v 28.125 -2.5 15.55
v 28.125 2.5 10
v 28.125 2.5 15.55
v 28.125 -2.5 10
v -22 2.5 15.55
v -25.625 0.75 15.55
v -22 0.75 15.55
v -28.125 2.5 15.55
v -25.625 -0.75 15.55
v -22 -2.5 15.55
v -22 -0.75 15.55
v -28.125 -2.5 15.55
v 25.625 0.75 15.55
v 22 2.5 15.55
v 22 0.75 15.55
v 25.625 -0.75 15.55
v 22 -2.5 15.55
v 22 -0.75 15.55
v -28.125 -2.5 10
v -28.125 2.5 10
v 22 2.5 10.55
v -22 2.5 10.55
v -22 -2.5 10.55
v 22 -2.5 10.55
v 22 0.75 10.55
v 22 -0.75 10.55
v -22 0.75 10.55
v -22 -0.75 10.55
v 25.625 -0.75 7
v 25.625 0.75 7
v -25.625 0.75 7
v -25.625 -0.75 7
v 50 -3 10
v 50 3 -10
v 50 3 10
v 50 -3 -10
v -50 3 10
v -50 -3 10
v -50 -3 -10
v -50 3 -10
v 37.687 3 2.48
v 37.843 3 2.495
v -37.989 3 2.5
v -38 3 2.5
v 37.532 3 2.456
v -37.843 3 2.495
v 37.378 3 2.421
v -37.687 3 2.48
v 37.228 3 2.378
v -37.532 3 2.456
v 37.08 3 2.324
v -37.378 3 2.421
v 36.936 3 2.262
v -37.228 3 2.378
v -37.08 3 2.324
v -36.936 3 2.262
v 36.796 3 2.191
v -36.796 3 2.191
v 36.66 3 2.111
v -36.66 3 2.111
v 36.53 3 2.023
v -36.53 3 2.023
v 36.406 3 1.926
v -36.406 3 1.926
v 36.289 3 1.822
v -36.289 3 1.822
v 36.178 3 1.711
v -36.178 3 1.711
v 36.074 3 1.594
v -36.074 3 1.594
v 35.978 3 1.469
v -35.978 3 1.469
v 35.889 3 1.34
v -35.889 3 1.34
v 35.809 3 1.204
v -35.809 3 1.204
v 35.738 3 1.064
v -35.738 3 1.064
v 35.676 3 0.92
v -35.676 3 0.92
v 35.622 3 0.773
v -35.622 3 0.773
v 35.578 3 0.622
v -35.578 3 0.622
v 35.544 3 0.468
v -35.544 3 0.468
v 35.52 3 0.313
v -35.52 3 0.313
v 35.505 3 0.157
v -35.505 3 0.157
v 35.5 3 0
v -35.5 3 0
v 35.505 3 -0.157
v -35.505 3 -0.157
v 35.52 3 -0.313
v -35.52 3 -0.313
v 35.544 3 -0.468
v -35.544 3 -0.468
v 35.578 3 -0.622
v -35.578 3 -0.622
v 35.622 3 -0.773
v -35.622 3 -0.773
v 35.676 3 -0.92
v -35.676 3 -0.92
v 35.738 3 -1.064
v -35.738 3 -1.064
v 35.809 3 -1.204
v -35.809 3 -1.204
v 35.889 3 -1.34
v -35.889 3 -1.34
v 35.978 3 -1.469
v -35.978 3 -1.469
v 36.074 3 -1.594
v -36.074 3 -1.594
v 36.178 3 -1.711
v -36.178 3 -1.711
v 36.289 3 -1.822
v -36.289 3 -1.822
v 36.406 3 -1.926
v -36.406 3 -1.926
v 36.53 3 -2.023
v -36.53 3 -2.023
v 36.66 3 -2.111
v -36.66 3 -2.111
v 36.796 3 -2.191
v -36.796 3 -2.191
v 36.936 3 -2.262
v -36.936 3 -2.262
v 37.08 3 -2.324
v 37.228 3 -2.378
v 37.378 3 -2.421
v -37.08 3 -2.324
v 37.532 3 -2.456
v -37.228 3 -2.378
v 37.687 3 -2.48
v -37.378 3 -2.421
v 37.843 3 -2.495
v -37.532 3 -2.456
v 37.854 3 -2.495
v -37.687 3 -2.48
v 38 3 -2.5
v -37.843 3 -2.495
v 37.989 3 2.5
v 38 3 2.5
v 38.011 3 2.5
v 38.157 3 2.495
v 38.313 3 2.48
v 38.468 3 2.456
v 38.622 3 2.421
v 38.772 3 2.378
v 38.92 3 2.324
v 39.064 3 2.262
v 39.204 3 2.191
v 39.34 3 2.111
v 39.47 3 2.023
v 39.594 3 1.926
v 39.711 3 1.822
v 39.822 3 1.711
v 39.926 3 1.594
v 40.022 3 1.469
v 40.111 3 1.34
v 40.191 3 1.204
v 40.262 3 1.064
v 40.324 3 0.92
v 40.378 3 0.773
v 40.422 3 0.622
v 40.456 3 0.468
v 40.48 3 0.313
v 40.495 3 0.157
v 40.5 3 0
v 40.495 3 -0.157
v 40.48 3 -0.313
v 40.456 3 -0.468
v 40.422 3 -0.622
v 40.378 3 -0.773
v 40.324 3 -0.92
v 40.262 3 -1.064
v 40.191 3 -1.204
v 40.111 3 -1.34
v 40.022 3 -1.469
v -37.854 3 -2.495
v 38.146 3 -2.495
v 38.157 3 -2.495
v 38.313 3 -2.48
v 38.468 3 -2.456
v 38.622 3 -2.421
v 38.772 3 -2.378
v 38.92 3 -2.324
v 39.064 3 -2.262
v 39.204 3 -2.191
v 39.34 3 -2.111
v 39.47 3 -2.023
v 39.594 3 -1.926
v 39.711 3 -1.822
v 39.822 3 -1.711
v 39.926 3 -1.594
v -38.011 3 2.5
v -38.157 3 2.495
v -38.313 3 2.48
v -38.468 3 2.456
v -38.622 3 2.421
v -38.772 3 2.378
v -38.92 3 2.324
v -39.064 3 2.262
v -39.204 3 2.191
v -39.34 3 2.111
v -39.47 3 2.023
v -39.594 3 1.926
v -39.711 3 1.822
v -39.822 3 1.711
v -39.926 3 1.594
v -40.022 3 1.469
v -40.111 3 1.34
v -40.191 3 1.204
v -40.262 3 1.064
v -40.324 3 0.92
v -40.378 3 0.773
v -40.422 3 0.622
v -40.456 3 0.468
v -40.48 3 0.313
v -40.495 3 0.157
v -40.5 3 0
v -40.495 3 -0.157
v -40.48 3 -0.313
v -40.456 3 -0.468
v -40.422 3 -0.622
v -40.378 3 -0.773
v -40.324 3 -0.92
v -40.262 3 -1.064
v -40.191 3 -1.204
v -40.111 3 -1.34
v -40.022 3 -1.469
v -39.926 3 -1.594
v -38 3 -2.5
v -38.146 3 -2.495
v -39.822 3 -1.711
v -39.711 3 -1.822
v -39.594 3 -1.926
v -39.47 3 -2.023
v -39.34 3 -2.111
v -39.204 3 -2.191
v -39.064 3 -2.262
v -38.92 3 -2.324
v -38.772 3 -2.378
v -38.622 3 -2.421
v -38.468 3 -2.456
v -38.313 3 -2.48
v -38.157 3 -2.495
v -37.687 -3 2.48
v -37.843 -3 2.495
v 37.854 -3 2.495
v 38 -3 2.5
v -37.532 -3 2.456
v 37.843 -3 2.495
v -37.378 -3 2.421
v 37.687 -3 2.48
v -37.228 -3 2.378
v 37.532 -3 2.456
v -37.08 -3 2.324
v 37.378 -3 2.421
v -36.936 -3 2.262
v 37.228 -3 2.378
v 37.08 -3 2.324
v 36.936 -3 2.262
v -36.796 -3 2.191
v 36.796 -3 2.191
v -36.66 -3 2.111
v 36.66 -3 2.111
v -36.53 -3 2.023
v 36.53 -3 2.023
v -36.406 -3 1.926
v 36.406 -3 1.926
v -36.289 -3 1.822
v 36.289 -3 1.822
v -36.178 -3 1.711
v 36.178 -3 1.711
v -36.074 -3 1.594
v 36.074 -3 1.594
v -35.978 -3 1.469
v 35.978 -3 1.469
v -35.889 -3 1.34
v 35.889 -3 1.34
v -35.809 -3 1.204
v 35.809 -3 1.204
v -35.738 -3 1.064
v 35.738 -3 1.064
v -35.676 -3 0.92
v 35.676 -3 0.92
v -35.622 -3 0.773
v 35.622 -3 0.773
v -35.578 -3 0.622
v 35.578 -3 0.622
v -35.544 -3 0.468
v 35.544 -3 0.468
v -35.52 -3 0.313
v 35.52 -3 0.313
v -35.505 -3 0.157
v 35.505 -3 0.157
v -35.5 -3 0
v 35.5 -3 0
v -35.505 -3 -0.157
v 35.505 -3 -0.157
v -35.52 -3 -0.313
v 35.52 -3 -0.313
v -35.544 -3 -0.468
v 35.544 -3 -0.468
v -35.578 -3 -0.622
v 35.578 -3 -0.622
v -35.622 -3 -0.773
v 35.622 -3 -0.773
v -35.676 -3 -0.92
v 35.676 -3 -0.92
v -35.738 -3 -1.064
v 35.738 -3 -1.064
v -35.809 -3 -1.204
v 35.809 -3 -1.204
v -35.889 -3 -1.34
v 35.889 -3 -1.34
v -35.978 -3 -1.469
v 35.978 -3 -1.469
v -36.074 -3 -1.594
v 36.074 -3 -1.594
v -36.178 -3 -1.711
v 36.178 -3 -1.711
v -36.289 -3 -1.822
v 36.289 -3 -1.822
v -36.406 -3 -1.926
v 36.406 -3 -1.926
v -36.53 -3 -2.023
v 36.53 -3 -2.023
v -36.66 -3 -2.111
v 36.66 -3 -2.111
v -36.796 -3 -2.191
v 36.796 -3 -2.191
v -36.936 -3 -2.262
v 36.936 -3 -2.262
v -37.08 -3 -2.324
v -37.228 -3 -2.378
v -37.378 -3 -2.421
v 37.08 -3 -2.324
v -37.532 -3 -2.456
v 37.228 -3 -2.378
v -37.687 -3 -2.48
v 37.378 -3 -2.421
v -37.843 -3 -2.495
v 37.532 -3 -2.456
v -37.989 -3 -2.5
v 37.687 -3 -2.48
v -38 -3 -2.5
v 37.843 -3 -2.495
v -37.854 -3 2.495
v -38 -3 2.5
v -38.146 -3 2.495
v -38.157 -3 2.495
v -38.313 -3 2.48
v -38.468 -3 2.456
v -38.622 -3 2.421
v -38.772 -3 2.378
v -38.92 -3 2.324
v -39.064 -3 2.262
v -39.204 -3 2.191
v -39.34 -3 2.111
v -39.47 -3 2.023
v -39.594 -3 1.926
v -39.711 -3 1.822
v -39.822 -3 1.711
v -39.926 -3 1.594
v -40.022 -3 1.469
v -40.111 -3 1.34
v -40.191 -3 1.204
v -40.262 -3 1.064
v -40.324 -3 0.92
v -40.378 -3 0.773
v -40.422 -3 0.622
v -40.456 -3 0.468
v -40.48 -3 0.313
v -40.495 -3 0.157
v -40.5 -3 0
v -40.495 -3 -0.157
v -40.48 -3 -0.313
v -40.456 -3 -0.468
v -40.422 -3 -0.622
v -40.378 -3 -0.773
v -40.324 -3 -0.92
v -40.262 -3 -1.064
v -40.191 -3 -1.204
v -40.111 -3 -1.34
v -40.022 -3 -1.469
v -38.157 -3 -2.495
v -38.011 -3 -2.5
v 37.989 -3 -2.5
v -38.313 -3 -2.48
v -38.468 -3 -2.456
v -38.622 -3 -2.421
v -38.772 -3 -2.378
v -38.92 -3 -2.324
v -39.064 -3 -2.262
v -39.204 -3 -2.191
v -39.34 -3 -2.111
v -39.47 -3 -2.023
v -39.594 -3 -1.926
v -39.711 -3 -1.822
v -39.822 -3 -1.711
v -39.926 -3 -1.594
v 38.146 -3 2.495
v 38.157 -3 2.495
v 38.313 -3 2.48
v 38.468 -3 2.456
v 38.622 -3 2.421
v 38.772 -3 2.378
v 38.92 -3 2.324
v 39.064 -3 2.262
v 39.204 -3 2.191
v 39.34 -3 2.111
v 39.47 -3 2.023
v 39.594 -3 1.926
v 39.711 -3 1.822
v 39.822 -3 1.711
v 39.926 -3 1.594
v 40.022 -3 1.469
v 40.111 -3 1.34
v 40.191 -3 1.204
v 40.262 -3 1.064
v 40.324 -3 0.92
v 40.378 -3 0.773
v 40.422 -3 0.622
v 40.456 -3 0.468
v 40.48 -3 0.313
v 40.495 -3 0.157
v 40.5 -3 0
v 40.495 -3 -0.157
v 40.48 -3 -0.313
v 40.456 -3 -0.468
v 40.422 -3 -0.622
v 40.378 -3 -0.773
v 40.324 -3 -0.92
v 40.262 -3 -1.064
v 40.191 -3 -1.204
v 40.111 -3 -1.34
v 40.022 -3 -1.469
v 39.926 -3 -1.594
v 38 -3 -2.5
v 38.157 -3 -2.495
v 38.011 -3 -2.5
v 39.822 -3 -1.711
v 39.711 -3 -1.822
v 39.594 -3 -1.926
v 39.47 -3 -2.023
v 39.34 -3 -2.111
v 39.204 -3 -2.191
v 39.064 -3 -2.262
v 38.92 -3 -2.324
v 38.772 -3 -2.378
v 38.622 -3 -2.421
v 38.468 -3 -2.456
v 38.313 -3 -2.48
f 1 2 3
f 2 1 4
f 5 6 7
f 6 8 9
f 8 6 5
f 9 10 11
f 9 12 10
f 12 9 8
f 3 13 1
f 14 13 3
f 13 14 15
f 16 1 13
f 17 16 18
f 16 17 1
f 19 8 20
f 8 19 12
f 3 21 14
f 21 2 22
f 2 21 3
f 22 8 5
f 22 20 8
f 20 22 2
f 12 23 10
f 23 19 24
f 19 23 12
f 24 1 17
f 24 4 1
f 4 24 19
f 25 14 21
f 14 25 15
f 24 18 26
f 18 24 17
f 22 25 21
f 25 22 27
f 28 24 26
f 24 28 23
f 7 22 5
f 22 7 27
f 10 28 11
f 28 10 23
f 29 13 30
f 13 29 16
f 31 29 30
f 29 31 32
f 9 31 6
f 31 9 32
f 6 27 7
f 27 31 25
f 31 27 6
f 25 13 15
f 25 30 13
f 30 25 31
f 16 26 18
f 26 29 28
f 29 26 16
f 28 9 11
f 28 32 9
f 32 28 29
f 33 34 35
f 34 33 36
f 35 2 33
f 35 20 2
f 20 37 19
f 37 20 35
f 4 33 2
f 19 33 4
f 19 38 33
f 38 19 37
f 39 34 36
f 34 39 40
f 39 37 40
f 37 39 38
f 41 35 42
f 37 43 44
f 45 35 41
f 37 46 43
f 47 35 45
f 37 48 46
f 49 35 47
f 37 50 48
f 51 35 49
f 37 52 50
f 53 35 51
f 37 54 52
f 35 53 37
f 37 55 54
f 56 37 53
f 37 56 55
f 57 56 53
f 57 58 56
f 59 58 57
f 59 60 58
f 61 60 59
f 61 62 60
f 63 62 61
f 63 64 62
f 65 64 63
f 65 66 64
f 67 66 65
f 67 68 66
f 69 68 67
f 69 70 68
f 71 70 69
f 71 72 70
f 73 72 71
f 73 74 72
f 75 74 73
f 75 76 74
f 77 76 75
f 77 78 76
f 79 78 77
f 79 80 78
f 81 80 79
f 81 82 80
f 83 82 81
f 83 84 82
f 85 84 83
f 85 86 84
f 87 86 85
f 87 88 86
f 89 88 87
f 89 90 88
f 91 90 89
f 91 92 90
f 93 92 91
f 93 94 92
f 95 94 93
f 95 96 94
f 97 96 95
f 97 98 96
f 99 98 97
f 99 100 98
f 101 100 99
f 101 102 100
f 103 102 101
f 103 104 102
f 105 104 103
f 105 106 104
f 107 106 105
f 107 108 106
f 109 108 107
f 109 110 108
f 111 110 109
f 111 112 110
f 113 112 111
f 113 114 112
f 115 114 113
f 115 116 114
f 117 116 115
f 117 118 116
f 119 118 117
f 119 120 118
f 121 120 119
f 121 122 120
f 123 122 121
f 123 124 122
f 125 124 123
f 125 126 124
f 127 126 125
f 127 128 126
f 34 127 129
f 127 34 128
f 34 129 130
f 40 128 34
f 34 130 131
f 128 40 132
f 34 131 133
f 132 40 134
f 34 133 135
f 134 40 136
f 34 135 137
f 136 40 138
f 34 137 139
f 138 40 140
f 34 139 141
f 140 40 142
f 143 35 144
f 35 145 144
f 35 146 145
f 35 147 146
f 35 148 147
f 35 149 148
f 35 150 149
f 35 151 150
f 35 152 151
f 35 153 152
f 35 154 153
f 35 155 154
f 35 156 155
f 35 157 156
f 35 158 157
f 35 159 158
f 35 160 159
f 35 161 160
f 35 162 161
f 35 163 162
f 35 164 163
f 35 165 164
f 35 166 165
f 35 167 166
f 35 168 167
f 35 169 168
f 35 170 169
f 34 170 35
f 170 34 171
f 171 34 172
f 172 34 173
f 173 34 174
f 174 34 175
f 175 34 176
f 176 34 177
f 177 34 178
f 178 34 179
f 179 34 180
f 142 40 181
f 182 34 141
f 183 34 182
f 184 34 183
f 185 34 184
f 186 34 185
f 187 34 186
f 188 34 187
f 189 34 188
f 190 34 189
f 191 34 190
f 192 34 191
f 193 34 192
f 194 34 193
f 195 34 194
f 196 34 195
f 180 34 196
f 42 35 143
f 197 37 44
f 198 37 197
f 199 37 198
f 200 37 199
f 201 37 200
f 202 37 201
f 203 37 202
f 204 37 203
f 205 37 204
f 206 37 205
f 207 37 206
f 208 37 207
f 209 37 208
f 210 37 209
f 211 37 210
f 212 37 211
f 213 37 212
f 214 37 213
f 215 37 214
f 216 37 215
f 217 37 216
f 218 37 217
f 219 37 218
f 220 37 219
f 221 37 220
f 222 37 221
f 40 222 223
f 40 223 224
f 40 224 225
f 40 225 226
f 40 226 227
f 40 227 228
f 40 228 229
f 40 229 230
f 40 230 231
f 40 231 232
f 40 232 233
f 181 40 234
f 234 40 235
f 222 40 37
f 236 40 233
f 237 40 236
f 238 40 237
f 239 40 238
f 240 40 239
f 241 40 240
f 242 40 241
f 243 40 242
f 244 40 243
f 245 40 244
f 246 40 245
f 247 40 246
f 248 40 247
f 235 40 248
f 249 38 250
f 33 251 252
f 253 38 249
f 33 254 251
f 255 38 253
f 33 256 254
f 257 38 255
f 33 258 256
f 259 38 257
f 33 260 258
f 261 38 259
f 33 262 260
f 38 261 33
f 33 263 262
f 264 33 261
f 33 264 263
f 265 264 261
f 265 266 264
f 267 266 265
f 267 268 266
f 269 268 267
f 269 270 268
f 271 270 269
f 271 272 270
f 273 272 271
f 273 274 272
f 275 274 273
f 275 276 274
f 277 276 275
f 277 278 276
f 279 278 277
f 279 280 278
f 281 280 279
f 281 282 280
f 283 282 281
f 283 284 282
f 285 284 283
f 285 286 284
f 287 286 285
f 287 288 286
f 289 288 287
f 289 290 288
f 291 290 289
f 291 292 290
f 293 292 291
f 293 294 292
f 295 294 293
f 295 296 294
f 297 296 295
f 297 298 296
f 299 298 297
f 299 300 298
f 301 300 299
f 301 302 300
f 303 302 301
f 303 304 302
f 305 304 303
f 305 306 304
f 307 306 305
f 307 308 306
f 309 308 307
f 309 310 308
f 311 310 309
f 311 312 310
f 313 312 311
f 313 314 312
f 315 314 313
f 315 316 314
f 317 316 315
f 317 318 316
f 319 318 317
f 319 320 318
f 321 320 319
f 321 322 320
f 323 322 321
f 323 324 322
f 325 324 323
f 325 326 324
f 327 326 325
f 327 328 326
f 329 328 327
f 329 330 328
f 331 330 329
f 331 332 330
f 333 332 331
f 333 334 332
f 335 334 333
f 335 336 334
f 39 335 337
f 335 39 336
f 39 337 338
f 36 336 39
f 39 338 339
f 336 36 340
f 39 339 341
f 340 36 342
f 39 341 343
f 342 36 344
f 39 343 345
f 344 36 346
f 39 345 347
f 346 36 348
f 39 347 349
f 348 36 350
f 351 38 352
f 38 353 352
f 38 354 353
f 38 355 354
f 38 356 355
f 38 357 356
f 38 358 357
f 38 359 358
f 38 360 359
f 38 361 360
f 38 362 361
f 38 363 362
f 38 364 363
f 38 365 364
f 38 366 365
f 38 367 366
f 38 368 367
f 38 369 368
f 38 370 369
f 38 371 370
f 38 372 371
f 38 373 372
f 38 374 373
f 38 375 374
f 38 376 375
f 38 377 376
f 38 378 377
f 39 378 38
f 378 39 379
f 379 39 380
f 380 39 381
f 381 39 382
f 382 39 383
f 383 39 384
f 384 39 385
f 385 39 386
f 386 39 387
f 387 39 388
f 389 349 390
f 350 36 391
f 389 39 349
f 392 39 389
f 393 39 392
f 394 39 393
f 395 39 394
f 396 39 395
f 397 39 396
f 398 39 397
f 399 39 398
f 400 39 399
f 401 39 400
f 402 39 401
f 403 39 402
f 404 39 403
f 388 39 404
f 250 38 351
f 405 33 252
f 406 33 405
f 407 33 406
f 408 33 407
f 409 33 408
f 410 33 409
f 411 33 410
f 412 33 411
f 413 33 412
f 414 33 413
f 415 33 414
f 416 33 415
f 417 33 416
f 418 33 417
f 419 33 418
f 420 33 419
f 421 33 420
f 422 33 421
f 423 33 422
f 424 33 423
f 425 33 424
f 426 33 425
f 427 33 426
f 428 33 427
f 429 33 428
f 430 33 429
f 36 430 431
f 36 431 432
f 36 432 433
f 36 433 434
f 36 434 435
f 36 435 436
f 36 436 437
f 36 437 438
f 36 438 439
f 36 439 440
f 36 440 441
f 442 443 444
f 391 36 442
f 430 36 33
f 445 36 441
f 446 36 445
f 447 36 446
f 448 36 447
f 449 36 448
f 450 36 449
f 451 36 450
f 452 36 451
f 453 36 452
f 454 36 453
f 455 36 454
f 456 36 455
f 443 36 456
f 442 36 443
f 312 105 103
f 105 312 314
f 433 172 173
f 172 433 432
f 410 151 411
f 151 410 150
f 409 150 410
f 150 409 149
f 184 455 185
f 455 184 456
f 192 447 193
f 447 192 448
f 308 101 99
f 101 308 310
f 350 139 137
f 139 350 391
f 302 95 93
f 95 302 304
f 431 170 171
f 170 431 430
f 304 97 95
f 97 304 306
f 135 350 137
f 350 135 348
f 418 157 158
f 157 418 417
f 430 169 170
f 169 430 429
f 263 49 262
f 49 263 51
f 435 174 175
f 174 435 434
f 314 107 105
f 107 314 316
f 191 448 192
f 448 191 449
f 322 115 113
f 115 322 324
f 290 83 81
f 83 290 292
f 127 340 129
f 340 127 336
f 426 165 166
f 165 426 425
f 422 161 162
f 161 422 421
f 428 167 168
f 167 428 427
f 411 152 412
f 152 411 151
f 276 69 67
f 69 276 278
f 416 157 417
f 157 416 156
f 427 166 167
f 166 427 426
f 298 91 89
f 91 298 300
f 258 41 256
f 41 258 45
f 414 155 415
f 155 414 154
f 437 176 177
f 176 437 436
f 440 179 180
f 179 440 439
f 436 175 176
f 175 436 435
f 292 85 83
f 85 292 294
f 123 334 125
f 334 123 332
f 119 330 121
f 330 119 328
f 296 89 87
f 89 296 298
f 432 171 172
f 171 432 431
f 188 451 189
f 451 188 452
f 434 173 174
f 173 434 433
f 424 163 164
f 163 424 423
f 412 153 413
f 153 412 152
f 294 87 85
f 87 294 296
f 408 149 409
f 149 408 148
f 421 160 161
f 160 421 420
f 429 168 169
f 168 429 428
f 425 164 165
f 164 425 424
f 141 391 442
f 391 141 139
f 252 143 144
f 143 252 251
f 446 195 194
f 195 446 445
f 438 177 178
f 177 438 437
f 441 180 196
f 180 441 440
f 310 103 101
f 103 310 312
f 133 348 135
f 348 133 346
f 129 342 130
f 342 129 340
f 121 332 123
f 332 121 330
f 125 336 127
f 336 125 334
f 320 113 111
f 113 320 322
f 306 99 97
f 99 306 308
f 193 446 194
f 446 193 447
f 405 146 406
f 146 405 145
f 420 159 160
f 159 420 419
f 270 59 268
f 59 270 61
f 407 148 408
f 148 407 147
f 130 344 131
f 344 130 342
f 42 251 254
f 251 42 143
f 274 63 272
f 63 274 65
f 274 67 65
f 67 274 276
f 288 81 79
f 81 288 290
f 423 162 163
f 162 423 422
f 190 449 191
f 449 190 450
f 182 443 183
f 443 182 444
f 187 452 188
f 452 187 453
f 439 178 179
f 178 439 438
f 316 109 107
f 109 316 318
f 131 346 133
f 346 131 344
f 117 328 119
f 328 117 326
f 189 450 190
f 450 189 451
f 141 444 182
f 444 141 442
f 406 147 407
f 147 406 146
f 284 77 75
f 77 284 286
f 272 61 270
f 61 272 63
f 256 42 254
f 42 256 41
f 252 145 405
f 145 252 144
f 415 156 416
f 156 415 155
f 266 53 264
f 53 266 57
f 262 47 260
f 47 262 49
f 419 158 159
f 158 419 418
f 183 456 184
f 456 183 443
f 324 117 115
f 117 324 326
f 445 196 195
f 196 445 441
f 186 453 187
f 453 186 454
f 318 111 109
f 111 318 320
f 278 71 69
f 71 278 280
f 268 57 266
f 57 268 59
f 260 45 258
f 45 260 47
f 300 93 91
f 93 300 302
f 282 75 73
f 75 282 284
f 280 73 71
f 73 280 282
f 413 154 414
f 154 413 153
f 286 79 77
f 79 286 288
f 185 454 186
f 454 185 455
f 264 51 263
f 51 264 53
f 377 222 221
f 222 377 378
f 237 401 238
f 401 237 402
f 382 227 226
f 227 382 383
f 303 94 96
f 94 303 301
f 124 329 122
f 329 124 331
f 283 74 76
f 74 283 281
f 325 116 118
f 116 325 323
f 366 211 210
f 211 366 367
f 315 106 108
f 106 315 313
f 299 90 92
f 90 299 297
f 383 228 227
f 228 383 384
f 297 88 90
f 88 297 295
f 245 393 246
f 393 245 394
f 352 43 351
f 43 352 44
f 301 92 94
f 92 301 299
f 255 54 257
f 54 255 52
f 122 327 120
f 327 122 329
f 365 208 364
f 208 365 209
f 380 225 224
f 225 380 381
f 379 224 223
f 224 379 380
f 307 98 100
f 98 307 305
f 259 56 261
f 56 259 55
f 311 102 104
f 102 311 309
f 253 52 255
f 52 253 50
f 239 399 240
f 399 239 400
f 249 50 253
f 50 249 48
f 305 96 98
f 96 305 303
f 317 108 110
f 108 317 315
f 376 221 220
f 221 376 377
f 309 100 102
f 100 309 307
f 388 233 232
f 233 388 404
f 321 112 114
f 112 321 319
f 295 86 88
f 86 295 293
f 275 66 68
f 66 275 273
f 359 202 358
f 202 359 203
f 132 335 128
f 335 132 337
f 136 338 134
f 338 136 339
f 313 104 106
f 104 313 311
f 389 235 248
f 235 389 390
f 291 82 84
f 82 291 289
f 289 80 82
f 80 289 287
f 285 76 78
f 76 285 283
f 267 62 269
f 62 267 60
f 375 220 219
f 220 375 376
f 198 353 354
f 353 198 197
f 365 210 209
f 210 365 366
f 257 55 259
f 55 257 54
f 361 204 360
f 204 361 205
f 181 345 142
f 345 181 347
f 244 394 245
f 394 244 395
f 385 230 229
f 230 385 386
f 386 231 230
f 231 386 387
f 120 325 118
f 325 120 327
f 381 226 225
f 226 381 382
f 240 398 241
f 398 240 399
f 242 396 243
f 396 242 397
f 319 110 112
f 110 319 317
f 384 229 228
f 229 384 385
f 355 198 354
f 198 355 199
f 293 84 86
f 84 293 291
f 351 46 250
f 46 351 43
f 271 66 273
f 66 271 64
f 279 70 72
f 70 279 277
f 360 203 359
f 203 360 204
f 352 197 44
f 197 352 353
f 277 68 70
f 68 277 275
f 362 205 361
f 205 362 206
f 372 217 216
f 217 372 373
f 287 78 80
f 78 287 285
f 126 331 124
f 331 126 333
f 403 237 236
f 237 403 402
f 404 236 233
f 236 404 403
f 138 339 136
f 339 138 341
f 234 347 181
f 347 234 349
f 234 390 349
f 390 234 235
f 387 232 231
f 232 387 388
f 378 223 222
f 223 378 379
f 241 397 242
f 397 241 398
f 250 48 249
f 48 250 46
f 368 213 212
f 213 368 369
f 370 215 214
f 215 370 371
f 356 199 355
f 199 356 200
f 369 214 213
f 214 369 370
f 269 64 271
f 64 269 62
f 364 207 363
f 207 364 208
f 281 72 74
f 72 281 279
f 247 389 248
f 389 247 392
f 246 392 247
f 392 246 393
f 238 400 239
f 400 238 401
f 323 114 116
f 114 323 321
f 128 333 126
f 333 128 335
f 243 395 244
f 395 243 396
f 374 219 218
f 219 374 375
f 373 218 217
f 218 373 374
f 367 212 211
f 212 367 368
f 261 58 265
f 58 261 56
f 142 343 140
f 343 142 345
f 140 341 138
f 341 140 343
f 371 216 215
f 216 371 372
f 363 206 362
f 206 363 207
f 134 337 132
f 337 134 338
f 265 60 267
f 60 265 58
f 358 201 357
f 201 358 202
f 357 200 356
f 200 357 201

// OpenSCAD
$fn=100;

wall_dist=150;
thickness=6;
width=80;
width2=100;
height=20;

screw_dia=4;
screw_dia2=5;
screw_head=8;
screw_offs=width/4*1.3;

screw_dist=76;

back=25;

base_width=43.4;
base_height=9.1;

back=3;

module screwhole()
{
  cylinder(d=screw_dia, h=thickness+1, center=true);
  translate([0, 0, thickness/2]) mirror([0, 0, 1]) cylinder(d2=0, d1=screw_head, h=screw_head*2/3, center=false);
}

module screwhole2()
{
  cylinder(d=screw_dia2, h=thickness+1, center=true);
}

module screwhole()
{
  cylinder(d=screw_dia, h=thickness+1, center=true);
  translate([0, 0, thickness/2]) mirror([0, 0, 1]) cylinder(d2=0, d1=screw_head, h=screw_head*2/3, center=false);
}

module screwhole2()
{
  cylinder(d=screw_dia2, h=thickness+1, center=true);
}

pcb_thickness=1.5;
pcb_length=51.25;
pcb_height=50;
cover_thickness=5;
cover_height=10;
cutout_height=5;
cutout_width=44;
base_inset=4.1;

module pcb()
{
translate([0, 0, -base_height/2+pcb_height/2+cover_thickness/2-pcb_thickness])
  cube([pcb_length, pcb_thickness, pcb_height], center=true);
}

module support()
{
  support_height=9.5;
  rotate([90, 0, 0]) linear_extrude(height=cover_thickness, center=true) polygon(points=[[0, 0], [0, -support_height], [(pcb_length+cover_thickness-base_width+base_inset*2)/2, 0]]);
}


//PCB part
translate([0, 0, cover_height/2+base_height/2+cutout_height-cutout_height+1])
{
  difference()
  {
    cube([pcb_length+cover_thickness, cover_thickness, cover_height], center=true);
    translate([0, 0, (cover_height-cutout_height)/2]) cube([cutout_width, cover_thickness+1, cutout_height], center=true);
    pcb();
  }
}

//Screw mount part
translate([0, 0, 0]) difference()
{
  cube([width2, thickness, height], center=true);
  translate([screw_dist/2, 0, 0]) rotate([-90, 0, 0]) screwhole2();
  translate([-screw_dist/2, 0, 0]) rotate([-90, 0, 0]) screwhole2();
  translate([0, 0, cover_height/2+base_height/2+cutout_height-cutout_height+1]) pcb();
}
